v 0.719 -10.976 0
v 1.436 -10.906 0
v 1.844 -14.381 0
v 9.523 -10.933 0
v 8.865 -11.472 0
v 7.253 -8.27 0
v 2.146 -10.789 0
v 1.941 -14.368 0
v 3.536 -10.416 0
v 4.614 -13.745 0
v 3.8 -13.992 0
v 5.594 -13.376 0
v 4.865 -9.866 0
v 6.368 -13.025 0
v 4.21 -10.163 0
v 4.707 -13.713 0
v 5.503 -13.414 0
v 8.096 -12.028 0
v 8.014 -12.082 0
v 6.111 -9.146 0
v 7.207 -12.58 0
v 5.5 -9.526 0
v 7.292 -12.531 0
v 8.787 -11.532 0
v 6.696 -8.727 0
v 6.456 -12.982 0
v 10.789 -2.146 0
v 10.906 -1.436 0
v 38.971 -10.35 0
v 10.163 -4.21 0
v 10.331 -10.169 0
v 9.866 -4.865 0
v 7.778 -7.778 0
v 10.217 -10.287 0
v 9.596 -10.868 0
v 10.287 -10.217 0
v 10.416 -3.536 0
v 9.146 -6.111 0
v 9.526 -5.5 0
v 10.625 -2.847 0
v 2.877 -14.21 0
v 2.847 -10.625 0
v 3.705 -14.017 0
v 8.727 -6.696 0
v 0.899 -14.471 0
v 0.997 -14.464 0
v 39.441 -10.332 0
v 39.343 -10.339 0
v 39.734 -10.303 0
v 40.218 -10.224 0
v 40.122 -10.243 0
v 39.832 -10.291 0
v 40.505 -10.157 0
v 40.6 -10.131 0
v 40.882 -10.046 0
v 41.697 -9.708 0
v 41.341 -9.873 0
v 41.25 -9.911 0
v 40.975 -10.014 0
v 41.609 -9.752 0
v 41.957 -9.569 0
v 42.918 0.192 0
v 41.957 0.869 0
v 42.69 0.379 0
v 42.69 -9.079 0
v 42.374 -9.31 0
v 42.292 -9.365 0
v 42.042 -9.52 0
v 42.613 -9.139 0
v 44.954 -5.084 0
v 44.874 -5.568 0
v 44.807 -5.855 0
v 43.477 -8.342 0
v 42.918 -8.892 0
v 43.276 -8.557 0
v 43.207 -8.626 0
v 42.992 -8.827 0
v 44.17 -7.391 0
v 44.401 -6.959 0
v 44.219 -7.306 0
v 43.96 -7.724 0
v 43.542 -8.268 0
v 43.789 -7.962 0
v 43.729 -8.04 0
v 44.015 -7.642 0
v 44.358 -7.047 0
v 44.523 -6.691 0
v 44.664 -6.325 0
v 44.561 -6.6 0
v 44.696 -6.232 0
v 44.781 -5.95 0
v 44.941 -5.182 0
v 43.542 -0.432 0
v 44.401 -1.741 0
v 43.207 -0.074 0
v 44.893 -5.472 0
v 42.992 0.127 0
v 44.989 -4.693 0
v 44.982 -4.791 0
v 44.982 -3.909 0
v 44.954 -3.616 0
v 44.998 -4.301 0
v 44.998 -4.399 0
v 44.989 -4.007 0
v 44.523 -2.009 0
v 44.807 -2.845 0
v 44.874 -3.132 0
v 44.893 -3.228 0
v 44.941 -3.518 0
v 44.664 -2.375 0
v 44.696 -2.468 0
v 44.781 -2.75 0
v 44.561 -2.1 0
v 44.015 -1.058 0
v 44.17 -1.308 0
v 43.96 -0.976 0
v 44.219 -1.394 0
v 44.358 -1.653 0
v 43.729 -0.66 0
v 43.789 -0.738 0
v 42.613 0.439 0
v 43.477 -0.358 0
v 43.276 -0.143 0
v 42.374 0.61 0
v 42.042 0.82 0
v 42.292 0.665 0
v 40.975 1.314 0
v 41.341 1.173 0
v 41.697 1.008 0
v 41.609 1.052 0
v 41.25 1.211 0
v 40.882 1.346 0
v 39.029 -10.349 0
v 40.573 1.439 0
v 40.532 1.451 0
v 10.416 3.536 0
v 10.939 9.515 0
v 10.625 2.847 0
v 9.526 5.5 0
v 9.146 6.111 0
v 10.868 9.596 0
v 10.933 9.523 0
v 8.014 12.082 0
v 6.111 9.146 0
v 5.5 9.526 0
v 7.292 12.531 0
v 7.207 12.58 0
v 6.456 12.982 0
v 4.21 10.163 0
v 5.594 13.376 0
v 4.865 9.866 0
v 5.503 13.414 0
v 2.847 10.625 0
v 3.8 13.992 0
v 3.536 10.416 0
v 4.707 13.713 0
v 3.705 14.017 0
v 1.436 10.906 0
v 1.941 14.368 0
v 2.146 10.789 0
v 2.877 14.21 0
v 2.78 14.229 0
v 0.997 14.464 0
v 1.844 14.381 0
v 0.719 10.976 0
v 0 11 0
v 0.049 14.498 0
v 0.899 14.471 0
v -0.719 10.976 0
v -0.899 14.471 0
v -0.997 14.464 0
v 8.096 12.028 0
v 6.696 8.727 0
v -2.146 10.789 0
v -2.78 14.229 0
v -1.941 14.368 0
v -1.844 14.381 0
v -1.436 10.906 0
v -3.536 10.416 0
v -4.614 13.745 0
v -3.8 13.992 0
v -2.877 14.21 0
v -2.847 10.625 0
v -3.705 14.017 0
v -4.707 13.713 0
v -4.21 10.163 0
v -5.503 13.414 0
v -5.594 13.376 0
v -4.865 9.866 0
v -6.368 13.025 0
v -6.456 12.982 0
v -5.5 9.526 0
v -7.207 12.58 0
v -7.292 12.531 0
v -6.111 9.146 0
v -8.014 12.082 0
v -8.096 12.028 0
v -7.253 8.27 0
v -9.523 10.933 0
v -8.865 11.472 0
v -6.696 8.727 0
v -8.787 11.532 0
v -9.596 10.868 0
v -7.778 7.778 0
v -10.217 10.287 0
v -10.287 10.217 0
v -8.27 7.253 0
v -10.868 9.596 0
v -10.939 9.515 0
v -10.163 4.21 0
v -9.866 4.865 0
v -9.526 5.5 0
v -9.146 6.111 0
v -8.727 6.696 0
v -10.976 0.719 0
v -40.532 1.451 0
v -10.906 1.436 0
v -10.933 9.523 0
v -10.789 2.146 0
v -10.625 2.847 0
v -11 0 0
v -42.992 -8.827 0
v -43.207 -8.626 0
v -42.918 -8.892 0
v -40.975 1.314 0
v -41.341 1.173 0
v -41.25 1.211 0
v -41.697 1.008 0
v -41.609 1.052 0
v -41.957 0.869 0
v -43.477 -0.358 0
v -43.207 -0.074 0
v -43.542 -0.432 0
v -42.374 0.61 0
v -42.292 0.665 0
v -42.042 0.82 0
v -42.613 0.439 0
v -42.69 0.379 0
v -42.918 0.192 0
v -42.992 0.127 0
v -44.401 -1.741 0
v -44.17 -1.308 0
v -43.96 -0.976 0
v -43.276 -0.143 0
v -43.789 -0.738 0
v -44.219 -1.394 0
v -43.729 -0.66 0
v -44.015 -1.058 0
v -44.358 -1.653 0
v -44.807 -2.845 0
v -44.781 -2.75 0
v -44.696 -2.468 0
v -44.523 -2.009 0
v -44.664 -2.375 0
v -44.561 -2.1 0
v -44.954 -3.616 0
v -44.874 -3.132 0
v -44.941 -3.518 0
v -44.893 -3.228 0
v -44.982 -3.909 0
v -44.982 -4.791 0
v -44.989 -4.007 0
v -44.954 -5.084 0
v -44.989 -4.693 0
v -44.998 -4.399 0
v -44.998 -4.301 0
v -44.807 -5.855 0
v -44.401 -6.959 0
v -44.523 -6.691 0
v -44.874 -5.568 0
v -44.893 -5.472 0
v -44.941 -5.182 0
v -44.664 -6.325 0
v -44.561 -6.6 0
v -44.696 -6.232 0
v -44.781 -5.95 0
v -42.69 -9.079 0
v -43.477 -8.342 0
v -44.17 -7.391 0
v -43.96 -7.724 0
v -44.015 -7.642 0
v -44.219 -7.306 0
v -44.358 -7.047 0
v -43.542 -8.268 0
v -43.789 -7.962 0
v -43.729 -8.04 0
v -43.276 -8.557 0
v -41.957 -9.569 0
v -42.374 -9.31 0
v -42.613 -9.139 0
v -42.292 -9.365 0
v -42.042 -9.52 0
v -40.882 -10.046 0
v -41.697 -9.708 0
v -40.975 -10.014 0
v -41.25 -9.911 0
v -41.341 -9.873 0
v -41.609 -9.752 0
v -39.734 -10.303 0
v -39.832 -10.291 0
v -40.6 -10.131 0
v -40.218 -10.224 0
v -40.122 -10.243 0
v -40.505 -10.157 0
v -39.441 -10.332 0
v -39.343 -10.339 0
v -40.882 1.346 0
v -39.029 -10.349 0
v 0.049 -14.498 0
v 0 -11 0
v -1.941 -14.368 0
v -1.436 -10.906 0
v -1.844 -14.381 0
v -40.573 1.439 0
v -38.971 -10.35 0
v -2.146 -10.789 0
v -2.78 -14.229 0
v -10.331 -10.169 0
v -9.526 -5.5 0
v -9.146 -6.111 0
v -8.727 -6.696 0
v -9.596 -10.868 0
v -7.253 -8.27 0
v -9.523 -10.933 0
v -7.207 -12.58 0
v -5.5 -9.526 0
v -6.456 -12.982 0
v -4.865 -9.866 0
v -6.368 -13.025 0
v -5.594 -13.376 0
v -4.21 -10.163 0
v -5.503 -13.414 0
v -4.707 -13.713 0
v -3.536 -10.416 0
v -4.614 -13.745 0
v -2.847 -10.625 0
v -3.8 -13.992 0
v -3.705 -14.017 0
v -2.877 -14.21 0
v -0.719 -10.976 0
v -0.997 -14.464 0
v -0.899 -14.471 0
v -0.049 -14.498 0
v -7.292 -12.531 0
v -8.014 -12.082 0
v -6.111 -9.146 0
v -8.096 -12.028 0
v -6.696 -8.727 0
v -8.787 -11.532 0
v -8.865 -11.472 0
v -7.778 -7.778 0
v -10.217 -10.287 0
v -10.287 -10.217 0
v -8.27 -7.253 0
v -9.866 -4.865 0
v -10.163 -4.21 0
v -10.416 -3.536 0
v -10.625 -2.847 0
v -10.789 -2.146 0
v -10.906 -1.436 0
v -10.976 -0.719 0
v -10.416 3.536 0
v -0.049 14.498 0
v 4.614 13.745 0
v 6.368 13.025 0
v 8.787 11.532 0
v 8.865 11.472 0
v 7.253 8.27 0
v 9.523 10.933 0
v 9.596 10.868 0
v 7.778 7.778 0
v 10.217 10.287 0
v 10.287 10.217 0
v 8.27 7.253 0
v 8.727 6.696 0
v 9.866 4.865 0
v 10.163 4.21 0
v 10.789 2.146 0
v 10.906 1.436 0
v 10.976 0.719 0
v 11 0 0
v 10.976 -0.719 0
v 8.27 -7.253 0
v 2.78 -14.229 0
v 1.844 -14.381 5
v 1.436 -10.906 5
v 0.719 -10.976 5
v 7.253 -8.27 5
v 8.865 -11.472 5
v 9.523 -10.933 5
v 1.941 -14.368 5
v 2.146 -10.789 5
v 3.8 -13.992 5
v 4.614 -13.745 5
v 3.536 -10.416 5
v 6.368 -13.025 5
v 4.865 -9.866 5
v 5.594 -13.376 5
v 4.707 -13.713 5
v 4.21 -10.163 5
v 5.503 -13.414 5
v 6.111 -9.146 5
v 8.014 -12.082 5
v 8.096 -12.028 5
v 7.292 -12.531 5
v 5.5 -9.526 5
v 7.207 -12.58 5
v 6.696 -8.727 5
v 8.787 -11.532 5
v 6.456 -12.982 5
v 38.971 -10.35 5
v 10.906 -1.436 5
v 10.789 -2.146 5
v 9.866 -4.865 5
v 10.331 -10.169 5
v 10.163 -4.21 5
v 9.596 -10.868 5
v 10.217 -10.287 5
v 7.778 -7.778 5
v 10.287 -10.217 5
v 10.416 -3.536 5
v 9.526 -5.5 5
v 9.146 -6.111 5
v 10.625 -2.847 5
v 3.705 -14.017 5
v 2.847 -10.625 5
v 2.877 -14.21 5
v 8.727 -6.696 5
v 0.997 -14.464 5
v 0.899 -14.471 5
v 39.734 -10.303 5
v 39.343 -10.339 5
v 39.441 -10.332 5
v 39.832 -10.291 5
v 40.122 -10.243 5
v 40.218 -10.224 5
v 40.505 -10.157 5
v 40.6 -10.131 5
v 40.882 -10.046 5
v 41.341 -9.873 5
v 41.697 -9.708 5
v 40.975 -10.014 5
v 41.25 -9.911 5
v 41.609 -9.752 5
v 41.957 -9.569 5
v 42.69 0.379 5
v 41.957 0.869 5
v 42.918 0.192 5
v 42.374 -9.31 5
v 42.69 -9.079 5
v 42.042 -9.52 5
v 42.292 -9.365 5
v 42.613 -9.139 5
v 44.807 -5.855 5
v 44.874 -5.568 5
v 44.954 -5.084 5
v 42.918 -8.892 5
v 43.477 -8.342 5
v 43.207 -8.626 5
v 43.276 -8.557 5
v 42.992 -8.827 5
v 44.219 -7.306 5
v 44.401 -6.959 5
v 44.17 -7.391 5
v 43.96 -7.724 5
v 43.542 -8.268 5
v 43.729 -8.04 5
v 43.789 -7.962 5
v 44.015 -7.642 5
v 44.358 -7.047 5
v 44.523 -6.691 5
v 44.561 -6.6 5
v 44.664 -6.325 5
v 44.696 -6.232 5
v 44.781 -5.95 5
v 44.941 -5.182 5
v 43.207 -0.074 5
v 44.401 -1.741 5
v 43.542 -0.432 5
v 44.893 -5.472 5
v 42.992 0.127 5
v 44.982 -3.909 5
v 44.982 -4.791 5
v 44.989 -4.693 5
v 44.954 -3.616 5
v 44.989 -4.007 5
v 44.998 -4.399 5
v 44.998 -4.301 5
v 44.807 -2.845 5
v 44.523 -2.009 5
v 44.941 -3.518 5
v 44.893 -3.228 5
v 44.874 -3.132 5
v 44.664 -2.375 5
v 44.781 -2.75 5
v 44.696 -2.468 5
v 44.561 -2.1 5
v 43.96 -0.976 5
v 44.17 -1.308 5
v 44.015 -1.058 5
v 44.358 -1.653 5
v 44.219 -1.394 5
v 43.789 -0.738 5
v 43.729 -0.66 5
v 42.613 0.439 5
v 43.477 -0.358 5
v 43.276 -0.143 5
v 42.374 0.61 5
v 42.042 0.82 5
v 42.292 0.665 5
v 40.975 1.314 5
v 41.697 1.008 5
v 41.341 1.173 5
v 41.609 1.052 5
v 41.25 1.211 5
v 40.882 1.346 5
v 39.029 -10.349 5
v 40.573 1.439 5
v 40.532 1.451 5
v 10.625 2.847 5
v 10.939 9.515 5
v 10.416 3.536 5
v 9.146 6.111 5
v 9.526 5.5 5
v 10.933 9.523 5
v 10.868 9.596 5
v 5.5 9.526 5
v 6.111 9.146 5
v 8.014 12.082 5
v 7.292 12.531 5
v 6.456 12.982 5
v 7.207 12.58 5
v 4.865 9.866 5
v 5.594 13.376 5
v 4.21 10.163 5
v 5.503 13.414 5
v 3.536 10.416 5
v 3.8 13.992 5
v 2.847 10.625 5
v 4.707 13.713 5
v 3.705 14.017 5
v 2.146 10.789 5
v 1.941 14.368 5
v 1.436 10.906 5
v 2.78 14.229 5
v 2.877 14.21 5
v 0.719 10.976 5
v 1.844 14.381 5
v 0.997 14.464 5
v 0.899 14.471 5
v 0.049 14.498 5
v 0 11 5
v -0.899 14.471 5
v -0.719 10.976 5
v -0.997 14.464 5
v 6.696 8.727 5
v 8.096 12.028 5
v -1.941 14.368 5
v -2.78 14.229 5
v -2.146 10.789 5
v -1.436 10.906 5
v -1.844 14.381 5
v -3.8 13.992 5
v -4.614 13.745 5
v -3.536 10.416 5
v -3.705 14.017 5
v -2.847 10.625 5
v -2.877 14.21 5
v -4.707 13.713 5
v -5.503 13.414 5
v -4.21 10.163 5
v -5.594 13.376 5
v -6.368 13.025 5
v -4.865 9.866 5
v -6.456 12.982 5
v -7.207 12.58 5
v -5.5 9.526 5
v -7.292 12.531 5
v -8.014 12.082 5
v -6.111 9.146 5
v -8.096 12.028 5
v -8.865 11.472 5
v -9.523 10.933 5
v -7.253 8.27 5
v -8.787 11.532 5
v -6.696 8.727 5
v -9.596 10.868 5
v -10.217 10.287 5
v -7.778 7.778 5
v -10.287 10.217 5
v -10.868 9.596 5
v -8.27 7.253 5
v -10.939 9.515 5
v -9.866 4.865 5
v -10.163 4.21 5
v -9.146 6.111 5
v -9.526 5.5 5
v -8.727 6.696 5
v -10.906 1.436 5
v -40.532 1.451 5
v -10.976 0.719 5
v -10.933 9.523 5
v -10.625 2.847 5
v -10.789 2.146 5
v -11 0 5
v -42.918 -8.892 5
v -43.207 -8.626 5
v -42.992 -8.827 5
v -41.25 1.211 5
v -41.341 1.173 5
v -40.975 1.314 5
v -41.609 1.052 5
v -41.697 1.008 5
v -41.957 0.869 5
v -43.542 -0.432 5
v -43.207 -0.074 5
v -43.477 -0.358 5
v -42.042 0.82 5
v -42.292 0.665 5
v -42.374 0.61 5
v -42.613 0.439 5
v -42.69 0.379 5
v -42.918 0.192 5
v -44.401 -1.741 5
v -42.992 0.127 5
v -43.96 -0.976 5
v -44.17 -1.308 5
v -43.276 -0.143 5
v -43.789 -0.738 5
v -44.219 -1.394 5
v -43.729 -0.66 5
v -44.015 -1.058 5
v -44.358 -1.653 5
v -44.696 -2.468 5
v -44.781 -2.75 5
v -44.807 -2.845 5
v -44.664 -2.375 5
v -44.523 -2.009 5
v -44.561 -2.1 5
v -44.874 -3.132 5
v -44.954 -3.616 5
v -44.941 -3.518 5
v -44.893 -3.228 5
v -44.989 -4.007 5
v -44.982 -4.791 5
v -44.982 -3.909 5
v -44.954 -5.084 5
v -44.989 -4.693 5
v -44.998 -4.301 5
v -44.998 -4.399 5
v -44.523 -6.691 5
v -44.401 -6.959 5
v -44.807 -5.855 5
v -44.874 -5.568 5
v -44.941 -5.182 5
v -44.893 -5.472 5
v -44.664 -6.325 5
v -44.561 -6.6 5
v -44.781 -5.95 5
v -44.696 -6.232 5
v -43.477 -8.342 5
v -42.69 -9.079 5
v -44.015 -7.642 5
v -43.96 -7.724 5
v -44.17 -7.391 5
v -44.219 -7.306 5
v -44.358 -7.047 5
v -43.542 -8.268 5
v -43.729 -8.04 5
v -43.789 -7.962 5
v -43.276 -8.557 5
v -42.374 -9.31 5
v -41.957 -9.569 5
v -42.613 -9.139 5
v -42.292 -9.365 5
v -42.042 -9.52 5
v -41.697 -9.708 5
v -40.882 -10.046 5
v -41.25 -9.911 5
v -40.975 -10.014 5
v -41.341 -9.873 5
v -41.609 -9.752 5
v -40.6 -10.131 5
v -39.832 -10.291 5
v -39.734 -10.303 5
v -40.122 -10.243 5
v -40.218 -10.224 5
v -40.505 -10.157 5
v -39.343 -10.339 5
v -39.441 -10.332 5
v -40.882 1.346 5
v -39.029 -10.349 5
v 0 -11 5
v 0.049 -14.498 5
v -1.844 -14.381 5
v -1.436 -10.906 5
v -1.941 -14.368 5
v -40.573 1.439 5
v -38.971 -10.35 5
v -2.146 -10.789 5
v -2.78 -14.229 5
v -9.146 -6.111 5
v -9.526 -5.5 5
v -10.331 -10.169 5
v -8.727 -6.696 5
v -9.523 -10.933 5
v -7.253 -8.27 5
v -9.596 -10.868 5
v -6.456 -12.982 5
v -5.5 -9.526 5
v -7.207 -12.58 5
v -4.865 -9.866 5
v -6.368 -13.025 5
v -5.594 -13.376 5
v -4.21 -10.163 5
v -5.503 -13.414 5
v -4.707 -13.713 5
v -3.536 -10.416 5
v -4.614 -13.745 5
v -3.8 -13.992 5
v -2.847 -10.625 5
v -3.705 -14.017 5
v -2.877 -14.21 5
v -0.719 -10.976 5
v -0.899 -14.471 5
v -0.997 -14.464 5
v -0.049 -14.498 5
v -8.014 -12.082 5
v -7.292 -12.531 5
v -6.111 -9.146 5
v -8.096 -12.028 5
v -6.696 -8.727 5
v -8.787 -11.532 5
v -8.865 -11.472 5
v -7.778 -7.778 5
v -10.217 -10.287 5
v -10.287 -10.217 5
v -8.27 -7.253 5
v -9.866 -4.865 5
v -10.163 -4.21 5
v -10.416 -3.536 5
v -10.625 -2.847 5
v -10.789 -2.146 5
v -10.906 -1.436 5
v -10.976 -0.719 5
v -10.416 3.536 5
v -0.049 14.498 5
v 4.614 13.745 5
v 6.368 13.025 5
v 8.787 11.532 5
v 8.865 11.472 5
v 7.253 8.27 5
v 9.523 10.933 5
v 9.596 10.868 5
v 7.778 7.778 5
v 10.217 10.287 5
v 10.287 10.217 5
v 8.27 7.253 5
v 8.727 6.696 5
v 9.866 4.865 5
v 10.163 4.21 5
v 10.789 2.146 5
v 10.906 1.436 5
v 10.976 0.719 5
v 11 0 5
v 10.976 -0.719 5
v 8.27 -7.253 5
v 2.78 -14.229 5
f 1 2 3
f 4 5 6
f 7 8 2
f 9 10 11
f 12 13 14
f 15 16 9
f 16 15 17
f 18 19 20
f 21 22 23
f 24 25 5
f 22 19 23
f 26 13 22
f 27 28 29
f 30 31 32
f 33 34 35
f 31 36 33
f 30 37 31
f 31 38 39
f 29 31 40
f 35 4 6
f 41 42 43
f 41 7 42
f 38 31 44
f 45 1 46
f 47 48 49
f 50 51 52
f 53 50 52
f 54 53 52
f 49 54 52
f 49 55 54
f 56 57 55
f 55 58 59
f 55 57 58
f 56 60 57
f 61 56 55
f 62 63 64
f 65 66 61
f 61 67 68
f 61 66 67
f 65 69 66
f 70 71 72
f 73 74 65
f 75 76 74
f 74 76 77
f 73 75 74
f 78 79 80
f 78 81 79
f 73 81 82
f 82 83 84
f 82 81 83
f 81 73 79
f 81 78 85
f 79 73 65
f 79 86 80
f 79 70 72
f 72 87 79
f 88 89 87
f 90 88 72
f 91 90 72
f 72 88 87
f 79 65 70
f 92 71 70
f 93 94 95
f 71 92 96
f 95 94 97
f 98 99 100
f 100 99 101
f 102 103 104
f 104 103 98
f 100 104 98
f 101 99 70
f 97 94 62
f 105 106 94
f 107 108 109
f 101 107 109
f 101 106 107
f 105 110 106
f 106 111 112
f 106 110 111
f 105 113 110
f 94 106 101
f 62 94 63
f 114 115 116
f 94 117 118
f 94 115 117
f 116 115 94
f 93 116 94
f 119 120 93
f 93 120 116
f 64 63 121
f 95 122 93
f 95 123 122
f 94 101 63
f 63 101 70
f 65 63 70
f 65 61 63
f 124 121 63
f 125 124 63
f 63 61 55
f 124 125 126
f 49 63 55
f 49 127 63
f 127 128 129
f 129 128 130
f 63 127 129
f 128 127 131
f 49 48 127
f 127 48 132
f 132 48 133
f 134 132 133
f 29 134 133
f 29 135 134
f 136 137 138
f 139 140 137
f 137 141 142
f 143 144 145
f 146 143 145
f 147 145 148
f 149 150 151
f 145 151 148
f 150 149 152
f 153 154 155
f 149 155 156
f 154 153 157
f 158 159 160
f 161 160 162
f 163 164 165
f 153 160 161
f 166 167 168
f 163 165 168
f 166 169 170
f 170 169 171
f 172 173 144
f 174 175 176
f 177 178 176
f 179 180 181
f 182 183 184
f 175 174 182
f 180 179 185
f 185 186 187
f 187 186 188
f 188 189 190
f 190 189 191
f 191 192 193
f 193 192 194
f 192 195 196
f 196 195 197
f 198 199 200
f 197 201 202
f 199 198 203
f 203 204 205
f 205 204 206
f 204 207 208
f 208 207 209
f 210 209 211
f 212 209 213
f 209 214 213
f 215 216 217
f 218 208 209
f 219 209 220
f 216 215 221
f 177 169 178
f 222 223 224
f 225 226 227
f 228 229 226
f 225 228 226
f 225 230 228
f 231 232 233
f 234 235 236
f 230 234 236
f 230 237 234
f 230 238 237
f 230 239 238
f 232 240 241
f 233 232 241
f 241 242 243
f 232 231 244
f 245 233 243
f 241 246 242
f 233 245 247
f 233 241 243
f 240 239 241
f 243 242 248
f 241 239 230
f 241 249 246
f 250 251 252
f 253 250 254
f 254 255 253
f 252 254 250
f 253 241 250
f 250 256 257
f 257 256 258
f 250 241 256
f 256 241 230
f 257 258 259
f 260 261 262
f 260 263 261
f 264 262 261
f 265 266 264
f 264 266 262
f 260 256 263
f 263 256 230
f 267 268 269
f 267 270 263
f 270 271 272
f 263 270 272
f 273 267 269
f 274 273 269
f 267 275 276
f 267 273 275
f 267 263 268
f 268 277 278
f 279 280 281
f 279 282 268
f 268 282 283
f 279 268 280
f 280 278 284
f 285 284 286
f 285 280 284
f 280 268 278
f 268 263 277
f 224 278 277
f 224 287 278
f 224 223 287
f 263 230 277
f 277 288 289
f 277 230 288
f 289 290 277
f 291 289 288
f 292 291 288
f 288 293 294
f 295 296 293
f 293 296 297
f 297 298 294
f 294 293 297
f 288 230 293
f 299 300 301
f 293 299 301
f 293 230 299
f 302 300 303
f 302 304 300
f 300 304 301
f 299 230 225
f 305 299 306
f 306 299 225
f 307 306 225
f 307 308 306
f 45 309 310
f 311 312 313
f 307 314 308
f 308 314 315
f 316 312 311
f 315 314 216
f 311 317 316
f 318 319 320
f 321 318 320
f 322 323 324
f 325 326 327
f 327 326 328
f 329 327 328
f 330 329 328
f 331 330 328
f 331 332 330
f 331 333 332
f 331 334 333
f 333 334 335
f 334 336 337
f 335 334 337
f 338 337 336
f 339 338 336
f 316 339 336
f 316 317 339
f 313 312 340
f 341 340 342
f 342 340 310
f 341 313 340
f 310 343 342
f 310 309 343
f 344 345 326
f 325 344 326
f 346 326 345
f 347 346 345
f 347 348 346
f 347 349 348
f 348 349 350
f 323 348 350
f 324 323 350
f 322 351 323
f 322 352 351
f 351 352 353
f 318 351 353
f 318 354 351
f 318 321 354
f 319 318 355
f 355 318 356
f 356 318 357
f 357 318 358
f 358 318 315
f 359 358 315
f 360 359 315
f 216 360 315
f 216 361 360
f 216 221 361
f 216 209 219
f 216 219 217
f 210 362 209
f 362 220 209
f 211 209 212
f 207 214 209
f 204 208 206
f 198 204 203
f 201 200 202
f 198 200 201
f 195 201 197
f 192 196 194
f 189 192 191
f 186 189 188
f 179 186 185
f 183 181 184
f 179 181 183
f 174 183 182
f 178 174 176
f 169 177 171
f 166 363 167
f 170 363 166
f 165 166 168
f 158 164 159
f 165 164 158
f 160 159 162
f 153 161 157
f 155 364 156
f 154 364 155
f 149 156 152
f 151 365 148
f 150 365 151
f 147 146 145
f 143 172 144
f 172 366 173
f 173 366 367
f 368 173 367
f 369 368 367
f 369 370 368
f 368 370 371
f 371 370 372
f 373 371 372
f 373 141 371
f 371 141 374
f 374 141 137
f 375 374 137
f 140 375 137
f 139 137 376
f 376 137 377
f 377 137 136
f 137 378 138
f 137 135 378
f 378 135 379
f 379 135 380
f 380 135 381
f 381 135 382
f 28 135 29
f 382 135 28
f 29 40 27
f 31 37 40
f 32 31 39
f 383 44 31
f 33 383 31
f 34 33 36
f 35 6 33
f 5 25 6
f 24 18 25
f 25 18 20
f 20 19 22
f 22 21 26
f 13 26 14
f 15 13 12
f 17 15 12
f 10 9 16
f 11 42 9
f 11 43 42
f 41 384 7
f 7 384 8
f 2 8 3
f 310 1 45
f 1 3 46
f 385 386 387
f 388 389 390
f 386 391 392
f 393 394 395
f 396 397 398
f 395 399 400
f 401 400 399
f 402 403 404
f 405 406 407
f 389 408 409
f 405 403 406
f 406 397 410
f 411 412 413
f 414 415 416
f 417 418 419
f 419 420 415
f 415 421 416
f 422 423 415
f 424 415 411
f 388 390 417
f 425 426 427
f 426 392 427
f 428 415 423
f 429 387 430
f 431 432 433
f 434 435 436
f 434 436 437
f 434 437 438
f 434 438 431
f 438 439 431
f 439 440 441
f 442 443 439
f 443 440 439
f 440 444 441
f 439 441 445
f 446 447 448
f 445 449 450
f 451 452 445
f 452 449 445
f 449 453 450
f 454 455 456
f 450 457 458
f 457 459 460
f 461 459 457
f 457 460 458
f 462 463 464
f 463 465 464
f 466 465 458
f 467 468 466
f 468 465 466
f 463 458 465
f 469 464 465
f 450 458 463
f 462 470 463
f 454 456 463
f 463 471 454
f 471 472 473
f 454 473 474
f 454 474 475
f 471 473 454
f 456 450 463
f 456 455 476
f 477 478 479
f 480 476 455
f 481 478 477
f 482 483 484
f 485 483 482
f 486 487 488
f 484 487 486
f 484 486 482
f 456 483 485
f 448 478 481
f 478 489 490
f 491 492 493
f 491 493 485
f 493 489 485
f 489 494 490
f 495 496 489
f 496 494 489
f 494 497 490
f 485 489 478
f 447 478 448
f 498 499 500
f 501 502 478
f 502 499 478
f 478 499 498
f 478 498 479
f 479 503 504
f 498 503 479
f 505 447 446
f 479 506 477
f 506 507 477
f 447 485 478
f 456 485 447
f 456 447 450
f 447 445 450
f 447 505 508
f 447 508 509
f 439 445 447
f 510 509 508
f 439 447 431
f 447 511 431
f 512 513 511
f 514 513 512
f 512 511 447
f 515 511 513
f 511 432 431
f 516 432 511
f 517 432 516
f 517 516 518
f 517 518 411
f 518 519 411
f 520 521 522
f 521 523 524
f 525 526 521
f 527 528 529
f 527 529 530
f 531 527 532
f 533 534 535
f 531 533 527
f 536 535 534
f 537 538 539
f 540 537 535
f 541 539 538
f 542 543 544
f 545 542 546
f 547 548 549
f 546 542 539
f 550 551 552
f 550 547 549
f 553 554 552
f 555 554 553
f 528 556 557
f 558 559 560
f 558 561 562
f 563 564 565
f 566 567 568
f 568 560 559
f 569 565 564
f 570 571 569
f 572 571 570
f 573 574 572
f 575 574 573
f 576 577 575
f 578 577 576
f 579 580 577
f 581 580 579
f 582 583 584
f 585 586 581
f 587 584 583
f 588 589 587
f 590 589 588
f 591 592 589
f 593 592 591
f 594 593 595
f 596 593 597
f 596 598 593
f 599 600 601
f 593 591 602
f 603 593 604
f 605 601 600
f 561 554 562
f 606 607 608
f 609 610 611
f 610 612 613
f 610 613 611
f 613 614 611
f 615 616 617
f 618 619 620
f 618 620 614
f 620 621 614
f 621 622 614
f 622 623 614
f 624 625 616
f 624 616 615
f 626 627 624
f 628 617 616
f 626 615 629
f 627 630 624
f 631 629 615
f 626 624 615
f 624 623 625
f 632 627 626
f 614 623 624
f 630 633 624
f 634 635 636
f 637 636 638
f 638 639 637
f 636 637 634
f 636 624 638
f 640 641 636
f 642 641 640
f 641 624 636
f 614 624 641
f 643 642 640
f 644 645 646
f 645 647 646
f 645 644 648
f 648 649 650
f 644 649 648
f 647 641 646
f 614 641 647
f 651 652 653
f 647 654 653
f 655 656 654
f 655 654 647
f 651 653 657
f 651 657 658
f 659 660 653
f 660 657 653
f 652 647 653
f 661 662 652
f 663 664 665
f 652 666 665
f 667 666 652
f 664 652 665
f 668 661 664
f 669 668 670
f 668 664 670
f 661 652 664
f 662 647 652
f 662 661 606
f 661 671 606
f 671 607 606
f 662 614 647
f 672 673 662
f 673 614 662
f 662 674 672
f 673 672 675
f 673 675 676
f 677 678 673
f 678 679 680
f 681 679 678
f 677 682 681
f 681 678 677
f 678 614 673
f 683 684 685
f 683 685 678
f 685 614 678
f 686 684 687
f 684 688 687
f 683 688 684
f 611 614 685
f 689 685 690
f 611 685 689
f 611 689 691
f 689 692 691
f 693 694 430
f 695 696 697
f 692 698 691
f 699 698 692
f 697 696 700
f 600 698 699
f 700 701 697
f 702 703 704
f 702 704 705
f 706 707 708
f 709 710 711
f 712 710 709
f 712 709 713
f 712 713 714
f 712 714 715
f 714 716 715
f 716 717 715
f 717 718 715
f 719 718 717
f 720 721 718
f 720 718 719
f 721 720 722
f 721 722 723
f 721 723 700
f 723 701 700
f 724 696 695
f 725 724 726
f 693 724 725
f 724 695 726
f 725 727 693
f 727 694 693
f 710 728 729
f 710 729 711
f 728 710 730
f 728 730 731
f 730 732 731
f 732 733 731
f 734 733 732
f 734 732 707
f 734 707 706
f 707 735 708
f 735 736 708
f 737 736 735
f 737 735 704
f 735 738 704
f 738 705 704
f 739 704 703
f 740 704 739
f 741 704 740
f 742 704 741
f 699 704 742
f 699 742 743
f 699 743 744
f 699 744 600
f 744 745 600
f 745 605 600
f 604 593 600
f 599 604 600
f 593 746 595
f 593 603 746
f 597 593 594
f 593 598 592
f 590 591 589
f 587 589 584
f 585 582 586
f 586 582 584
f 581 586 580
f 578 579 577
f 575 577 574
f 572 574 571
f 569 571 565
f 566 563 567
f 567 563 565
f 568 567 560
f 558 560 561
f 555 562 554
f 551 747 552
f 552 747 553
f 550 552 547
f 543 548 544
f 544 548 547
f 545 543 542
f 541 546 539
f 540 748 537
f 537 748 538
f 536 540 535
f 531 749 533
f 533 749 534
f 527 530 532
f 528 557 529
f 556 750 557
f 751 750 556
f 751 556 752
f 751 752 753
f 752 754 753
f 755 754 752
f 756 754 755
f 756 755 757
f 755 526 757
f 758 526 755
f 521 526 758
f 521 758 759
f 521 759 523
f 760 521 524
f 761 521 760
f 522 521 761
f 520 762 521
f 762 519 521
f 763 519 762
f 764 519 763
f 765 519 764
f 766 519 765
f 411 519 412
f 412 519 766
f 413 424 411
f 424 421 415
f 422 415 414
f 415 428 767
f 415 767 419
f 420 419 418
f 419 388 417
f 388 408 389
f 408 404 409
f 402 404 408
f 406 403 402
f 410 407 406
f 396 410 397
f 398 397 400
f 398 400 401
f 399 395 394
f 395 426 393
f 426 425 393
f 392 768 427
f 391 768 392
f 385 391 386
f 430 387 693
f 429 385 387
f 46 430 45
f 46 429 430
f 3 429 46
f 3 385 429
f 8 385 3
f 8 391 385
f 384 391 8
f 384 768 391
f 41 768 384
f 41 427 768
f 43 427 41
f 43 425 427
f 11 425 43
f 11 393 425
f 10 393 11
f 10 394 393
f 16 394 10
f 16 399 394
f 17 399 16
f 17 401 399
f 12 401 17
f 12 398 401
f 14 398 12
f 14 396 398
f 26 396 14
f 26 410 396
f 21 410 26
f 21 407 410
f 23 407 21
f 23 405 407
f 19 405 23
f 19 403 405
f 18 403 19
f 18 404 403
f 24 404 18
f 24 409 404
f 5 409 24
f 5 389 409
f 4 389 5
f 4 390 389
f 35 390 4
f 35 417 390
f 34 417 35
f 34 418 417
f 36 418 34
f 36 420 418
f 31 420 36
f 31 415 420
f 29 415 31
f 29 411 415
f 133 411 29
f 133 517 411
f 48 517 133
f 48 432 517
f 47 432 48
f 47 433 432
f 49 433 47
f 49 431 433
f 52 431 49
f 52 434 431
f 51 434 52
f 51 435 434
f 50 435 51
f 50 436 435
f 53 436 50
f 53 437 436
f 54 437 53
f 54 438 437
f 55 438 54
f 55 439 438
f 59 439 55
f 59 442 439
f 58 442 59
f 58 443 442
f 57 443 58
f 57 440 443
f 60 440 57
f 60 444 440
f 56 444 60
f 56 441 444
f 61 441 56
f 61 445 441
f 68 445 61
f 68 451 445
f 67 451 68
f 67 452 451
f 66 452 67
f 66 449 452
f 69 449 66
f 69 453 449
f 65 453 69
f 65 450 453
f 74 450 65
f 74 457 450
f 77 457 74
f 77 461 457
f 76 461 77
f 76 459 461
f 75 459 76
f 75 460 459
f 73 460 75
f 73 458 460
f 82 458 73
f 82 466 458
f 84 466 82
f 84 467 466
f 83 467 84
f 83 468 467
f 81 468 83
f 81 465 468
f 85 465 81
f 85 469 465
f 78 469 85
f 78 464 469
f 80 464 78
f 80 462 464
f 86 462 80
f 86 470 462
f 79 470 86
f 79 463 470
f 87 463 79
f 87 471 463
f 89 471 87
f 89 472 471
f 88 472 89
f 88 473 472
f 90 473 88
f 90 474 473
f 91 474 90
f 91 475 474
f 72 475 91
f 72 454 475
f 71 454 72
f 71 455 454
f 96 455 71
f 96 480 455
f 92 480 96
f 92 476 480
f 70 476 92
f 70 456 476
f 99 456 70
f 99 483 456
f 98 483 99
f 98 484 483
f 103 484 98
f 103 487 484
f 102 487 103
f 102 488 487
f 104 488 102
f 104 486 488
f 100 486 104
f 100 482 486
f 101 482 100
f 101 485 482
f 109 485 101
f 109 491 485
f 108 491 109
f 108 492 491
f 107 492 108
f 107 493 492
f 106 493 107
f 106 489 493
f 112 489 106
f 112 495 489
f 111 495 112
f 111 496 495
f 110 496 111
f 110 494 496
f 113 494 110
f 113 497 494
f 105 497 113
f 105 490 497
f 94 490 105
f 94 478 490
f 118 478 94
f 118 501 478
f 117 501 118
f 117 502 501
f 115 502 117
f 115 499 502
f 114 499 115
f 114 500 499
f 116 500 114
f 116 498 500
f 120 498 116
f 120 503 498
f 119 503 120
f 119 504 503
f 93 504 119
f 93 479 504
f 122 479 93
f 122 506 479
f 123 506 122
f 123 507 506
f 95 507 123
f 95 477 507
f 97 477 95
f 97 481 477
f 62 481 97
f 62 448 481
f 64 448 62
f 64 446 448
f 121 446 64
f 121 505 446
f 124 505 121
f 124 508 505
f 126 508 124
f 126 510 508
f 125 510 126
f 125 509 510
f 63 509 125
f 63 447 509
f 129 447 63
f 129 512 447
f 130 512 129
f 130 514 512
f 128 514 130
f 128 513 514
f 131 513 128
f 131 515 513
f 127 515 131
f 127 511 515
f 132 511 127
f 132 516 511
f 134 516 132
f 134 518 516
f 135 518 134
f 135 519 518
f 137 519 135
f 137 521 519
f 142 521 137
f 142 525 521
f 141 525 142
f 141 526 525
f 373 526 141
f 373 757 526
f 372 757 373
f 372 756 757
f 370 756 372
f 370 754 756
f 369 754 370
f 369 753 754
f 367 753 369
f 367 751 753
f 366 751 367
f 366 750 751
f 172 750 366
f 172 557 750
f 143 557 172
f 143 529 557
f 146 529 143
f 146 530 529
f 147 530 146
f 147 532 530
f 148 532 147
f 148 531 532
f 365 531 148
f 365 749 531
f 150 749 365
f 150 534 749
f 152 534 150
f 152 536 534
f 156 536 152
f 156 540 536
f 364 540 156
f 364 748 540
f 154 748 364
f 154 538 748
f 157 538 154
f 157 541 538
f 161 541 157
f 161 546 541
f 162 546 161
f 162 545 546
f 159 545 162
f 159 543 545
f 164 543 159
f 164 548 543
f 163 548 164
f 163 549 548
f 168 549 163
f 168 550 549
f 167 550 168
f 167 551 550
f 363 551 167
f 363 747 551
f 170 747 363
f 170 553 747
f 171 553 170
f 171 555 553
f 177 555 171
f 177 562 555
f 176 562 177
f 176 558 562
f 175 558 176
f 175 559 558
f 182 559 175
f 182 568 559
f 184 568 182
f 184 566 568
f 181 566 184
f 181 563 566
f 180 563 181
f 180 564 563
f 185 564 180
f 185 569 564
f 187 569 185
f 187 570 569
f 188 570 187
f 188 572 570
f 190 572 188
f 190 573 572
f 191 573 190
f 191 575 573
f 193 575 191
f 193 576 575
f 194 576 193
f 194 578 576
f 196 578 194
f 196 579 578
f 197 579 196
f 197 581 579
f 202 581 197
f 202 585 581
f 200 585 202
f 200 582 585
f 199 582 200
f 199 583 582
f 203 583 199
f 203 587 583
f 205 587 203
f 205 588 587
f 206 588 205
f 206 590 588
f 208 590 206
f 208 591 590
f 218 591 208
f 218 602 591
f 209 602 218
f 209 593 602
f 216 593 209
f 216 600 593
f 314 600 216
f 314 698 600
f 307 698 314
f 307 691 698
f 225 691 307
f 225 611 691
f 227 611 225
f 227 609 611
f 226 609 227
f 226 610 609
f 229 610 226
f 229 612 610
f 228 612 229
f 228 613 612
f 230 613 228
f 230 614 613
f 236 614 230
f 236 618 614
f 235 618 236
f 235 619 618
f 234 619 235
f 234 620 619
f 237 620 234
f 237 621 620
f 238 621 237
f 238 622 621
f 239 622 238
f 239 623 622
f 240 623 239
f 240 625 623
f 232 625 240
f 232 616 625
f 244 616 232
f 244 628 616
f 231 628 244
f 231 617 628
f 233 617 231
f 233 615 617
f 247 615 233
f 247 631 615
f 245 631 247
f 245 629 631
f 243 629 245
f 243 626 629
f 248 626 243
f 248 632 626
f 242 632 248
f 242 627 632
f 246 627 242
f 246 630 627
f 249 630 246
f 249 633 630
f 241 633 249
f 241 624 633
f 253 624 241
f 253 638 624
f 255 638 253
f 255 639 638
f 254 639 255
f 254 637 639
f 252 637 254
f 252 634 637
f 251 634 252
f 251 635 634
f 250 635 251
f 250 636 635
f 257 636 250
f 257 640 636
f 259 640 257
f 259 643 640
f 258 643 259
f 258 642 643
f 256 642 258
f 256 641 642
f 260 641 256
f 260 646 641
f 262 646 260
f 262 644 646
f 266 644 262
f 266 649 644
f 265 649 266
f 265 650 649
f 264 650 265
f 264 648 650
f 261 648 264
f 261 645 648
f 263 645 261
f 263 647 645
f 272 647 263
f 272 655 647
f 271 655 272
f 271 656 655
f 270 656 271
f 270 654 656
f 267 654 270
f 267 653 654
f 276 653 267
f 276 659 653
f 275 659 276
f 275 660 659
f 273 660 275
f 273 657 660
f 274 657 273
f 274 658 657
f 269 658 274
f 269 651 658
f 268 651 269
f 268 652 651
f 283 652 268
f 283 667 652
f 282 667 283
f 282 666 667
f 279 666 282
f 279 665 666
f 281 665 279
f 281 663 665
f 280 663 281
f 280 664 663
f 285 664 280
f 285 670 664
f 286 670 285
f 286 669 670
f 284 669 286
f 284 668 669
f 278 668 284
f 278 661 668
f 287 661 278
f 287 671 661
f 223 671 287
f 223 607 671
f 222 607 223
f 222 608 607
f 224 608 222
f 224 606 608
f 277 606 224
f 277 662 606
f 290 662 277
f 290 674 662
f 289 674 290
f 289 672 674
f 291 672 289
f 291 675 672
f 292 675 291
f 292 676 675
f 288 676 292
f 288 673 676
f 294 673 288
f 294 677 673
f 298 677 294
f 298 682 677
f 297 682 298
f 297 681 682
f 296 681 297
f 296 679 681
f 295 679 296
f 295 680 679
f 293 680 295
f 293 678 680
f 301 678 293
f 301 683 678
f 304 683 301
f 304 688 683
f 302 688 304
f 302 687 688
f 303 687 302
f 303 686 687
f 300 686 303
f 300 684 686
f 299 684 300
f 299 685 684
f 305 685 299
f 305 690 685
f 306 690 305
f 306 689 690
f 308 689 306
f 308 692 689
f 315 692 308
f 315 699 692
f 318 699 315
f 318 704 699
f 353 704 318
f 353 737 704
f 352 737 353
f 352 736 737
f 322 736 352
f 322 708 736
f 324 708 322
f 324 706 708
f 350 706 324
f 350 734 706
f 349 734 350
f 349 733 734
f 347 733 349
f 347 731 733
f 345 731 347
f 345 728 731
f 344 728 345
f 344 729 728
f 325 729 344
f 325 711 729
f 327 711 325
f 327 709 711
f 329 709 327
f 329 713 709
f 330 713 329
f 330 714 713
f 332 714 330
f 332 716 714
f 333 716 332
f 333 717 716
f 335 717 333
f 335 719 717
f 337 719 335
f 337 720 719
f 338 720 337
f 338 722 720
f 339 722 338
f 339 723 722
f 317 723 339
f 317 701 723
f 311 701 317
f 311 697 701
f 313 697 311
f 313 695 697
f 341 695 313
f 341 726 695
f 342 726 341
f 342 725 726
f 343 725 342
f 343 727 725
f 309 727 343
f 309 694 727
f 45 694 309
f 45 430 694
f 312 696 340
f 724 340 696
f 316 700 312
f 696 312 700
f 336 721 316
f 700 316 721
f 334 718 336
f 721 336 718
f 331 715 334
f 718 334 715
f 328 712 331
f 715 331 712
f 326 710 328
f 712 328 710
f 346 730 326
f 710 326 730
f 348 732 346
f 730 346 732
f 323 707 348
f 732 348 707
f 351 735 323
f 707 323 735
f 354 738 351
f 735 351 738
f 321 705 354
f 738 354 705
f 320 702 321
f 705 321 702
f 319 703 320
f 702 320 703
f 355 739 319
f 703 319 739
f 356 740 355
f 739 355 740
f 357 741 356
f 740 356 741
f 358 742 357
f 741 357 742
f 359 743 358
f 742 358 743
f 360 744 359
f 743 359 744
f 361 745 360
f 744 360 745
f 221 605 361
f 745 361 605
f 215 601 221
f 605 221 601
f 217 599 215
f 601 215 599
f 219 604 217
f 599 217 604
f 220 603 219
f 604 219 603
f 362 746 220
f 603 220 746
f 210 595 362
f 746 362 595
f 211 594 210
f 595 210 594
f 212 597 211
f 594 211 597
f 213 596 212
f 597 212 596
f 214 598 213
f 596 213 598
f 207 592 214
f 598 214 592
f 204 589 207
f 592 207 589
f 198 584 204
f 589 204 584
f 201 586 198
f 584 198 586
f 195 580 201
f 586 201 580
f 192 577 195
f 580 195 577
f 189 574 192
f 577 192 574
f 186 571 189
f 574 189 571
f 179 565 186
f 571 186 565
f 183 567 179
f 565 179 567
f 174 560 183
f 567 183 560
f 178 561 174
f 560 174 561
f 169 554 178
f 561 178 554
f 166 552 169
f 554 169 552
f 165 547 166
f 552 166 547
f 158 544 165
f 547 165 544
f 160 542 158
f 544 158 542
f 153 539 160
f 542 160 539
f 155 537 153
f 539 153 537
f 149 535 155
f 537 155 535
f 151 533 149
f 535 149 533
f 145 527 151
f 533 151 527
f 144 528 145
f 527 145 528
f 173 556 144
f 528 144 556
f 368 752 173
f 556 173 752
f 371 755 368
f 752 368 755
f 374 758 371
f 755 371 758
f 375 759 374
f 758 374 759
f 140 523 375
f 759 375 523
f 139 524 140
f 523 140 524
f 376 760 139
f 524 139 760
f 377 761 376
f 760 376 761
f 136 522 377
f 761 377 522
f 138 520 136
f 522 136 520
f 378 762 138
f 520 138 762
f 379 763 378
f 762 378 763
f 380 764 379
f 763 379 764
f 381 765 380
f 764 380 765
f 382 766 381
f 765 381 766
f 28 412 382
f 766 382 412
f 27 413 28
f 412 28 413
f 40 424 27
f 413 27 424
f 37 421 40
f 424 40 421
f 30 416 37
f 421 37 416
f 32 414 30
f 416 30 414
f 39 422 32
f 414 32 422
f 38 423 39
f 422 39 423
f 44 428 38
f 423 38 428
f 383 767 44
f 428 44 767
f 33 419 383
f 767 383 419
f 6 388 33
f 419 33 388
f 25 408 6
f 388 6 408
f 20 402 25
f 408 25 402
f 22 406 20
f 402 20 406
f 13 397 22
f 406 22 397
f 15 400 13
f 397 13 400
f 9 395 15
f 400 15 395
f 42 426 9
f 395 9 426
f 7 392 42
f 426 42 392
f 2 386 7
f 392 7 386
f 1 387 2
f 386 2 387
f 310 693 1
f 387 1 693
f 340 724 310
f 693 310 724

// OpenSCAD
// Thumb Page Holder — slip it on your thumb and the wings hold the book
// open with one hand. Great for reading in bed, on the train, at the pool.
// Print flat (as rendered).

/* [Fit] */
// Thumb hole diameter (mm). Measure your thumb at the knuckle + 1 mm.
thumb_d = 22;           // [15:0.5:30]
// Wing span (mm)
span = 90;              // [60:1:140]
// Thickness (mm)
thickness = 5;          // [3:0.5:10]

/* [Hidden] */
$fn = 96;
ring = thumb_d + 7;

module shape() {
    offset(r = 1.5) offset(delta = -1.5)
    difference() {
        union() {
            circle(d = ring);
            // two curved wings, each a lens shape that presses the pages down
            for (s = [-1, 1])
                hull() {
                    translate([s * ring / 4, 0]) circle(d = ring * 0.7);
                    translate([s * (span / 2 - 6), -ring * 0.15]) circle(d = 12);
                }
        }
        circle(d = thumb_d);
    }
}

linear_extrude(thickness) shape();
